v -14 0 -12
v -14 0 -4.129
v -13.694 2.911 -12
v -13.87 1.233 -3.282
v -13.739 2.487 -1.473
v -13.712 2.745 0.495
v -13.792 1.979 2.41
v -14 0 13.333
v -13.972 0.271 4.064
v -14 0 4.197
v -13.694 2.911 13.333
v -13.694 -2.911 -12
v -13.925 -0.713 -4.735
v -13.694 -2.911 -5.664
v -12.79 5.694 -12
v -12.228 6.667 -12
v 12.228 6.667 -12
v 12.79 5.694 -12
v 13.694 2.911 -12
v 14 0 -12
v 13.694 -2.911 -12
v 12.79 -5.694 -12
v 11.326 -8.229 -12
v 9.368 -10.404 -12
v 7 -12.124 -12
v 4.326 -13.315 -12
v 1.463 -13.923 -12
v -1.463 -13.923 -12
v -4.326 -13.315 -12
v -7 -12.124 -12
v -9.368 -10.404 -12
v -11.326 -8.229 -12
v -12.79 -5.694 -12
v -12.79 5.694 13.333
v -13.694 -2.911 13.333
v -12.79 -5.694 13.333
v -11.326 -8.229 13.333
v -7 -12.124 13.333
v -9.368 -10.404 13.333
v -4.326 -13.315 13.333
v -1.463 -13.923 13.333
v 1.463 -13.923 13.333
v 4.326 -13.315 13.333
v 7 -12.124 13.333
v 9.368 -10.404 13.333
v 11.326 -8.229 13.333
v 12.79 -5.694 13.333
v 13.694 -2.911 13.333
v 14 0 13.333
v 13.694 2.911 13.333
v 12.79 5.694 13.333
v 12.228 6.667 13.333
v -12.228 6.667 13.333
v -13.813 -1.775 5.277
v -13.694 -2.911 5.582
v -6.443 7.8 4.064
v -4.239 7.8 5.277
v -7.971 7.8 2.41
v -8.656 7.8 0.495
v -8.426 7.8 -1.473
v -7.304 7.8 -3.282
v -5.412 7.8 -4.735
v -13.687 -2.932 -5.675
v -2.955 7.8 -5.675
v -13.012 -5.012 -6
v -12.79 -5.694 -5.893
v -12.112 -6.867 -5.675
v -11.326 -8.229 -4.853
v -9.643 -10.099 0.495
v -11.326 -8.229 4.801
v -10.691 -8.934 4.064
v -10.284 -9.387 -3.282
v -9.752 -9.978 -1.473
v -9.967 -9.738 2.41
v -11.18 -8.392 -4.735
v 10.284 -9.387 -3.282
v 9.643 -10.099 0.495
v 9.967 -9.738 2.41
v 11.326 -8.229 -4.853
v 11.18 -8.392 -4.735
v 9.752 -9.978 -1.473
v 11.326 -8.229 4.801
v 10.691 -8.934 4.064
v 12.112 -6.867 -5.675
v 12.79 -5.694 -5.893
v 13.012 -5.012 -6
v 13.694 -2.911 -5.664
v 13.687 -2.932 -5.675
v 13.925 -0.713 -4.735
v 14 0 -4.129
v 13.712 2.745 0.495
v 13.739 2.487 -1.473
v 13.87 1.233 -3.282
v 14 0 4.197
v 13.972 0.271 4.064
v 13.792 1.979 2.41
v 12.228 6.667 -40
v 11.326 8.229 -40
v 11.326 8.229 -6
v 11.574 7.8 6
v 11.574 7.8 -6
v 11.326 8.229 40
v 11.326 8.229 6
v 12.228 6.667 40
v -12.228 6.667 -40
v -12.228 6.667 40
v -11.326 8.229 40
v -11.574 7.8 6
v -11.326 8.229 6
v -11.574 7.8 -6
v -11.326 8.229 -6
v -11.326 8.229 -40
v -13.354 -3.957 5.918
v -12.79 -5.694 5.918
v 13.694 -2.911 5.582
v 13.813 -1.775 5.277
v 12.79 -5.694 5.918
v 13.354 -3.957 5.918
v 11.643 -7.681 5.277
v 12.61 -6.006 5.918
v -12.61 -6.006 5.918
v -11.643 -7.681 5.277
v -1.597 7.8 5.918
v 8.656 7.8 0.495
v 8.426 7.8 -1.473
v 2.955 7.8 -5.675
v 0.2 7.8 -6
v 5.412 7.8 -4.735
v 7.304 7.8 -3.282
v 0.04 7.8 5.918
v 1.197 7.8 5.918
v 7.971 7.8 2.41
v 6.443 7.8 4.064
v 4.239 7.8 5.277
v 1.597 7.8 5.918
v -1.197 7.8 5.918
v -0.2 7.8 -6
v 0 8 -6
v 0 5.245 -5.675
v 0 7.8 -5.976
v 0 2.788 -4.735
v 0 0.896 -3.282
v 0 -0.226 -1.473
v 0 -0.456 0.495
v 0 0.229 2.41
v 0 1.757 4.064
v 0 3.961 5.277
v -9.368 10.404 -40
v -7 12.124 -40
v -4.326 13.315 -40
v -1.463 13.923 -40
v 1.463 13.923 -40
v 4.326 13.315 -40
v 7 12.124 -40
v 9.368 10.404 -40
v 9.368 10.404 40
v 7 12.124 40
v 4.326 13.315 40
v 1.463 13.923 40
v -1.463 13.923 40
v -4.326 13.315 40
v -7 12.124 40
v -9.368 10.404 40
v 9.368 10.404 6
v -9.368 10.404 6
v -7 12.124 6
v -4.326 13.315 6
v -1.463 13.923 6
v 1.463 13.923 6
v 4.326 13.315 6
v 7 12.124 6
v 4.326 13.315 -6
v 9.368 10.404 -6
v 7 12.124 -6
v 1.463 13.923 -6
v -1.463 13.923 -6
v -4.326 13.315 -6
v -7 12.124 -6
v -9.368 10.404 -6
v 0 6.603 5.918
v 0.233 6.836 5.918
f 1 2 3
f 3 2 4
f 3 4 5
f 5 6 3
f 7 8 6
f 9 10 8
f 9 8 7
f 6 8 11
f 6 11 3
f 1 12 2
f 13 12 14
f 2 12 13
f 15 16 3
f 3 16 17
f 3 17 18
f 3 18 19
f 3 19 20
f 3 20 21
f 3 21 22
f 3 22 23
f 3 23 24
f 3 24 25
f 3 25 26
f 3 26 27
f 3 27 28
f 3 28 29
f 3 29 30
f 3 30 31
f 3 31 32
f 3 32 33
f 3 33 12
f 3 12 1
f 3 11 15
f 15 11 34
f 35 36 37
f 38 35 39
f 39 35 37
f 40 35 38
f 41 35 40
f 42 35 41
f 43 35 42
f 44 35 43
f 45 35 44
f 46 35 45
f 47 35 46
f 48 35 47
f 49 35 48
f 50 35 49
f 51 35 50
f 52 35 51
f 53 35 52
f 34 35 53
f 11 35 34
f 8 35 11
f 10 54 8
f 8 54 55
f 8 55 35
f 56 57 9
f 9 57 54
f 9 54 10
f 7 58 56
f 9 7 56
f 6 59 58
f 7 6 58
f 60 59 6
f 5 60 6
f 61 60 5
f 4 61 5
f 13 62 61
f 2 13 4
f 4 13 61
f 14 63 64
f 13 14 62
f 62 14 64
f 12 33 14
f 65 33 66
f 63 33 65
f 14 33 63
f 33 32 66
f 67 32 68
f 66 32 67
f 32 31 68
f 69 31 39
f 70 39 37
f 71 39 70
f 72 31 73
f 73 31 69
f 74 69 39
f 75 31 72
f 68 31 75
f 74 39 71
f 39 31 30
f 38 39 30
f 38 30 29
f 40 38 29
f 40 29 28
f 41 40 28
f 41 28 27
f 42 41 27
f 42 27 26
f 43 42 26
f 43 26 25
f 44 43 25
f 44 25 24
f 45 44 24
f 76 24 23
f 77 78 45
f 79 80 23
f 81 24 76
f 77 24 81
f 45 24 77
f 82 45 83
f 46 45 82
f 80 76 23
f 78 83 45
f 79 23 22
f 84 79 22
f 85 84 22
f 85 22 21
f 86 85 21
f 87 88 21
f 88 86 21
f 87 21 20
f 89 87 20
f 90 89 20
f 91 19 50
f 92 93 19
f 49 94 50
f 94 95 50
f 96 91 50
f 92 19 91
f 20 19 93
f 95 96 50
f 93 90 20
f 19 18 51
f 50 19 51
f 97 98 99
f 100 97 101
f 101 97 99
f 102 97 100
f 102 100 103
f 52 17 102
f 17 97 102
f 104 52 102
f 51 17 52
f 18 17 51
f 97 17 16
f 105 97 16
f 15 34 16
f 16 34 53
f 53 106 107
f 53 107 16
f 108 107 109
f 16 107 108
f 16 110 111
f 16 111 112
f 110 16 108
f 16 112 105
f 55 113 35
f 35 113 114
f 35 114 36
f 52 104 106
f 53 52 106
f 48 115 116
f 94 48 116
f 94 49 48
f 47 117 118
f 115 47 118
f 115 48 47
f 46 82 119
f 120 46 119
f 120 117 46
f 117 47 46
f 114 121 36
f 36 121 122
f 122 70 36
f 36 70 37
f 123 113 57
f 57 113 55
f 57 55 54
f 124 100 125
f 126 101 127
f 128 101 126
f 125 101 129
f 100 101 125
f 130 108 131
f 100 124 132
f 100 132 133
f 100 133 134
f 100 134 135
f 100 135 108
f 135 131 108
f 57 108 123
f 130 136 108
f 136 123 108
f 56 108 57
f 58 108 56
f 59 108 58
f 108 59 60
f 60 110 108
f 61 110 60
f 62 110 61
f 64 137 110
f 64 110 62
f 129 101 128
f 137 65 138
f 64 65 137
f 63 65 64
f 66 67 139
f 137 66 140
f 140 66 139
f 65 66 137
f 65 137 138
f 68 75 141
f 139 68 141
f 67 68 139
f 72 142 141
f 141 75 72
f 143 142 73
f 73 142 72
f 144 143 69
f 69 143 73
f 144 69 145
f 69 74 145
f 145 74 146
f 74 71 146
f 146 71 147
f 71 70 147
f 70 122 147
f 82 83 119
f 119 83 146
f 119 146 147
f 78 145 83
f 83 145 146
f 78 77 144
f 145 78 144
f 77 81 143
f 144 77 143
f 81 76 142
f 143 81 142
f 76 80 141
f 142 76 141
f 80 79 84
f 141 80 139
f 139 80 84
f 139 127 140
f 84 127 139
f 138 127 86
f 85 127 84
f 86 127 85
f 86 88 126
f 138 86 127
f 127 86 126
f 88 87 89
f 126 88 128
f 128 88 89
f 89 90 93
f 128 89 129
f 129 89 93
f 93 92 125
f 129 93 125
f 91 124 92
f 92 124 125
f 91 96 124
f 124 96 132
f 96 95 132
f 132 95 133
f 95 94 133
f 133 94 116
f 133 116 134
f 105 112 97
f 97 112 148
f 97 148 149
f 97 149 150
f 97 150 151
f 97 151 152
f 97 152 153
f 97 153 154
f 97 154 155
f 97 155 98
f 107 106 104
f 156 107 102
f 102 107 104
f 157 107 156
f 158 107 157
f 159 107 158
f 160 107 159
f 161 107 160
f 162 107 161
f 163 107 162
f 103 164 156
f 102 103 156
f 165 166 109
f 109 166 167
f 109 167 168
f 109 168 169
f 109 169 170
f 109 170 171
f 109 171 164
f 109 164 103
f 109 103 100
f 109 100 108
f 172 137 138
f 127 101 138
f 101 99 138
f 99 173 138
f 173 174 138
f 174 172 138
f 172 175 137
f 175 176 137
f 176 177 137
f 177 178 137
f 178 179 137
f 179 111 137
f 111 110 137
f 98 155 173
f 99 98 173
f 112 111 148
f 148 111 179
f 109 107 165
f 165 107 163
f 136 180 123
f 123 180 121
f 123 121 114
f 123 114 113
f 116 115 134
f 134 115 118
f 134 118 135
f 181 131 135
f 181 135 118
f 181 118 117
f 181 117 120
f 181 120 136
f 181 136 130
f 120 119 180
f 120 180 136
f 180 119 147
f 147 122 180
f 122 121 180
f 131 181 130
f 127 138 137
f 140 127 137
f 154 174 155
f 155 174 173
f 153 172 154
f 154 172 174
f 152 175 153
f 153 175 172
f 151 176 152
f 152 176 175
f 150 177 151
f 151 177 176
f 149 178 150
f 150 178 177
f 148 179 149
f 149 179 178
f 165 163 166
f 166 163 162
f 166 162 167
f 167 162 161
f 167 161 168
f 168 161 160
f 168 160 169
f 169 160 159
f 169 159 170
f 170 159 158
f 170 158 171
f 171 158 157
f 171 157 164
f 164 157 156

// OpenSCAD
s=40;
c=s*.8;
r=3;
rb=14;
h=s*1.2;

cd=r*2;
module example004()
{

difference() {
difference() {
	difference() {
      translate([0,0,-s])
		cylinder(h=2*s,r=rb);
      union() {
         translate([0,s/5,0])
      		rotate([0,90,45]) 
         translate([0,0,-h/2])
				cylinder(h=h,r=2*r);

         translate([0,s/5,0])
			rotate([0,90,135])
          translate([0,0,-h/2])
				cylinder(h=h,r=2*r);
      }
	}
//rotate([0,0,45])

translate([-cd*2.5,cd*1.3,-cd])
cube([cd*5,cd*5,cd*2]);
}

union() {
rotate([0,0,0])
translate([-s/2,-s/2,s/3])
cube([s,s/1.5,s]);

rotate([0,0,0])
translate([-s/2,-s/2,-1.3*s])
cube([s,s/1.5,s]);
}

}


}

example004();
